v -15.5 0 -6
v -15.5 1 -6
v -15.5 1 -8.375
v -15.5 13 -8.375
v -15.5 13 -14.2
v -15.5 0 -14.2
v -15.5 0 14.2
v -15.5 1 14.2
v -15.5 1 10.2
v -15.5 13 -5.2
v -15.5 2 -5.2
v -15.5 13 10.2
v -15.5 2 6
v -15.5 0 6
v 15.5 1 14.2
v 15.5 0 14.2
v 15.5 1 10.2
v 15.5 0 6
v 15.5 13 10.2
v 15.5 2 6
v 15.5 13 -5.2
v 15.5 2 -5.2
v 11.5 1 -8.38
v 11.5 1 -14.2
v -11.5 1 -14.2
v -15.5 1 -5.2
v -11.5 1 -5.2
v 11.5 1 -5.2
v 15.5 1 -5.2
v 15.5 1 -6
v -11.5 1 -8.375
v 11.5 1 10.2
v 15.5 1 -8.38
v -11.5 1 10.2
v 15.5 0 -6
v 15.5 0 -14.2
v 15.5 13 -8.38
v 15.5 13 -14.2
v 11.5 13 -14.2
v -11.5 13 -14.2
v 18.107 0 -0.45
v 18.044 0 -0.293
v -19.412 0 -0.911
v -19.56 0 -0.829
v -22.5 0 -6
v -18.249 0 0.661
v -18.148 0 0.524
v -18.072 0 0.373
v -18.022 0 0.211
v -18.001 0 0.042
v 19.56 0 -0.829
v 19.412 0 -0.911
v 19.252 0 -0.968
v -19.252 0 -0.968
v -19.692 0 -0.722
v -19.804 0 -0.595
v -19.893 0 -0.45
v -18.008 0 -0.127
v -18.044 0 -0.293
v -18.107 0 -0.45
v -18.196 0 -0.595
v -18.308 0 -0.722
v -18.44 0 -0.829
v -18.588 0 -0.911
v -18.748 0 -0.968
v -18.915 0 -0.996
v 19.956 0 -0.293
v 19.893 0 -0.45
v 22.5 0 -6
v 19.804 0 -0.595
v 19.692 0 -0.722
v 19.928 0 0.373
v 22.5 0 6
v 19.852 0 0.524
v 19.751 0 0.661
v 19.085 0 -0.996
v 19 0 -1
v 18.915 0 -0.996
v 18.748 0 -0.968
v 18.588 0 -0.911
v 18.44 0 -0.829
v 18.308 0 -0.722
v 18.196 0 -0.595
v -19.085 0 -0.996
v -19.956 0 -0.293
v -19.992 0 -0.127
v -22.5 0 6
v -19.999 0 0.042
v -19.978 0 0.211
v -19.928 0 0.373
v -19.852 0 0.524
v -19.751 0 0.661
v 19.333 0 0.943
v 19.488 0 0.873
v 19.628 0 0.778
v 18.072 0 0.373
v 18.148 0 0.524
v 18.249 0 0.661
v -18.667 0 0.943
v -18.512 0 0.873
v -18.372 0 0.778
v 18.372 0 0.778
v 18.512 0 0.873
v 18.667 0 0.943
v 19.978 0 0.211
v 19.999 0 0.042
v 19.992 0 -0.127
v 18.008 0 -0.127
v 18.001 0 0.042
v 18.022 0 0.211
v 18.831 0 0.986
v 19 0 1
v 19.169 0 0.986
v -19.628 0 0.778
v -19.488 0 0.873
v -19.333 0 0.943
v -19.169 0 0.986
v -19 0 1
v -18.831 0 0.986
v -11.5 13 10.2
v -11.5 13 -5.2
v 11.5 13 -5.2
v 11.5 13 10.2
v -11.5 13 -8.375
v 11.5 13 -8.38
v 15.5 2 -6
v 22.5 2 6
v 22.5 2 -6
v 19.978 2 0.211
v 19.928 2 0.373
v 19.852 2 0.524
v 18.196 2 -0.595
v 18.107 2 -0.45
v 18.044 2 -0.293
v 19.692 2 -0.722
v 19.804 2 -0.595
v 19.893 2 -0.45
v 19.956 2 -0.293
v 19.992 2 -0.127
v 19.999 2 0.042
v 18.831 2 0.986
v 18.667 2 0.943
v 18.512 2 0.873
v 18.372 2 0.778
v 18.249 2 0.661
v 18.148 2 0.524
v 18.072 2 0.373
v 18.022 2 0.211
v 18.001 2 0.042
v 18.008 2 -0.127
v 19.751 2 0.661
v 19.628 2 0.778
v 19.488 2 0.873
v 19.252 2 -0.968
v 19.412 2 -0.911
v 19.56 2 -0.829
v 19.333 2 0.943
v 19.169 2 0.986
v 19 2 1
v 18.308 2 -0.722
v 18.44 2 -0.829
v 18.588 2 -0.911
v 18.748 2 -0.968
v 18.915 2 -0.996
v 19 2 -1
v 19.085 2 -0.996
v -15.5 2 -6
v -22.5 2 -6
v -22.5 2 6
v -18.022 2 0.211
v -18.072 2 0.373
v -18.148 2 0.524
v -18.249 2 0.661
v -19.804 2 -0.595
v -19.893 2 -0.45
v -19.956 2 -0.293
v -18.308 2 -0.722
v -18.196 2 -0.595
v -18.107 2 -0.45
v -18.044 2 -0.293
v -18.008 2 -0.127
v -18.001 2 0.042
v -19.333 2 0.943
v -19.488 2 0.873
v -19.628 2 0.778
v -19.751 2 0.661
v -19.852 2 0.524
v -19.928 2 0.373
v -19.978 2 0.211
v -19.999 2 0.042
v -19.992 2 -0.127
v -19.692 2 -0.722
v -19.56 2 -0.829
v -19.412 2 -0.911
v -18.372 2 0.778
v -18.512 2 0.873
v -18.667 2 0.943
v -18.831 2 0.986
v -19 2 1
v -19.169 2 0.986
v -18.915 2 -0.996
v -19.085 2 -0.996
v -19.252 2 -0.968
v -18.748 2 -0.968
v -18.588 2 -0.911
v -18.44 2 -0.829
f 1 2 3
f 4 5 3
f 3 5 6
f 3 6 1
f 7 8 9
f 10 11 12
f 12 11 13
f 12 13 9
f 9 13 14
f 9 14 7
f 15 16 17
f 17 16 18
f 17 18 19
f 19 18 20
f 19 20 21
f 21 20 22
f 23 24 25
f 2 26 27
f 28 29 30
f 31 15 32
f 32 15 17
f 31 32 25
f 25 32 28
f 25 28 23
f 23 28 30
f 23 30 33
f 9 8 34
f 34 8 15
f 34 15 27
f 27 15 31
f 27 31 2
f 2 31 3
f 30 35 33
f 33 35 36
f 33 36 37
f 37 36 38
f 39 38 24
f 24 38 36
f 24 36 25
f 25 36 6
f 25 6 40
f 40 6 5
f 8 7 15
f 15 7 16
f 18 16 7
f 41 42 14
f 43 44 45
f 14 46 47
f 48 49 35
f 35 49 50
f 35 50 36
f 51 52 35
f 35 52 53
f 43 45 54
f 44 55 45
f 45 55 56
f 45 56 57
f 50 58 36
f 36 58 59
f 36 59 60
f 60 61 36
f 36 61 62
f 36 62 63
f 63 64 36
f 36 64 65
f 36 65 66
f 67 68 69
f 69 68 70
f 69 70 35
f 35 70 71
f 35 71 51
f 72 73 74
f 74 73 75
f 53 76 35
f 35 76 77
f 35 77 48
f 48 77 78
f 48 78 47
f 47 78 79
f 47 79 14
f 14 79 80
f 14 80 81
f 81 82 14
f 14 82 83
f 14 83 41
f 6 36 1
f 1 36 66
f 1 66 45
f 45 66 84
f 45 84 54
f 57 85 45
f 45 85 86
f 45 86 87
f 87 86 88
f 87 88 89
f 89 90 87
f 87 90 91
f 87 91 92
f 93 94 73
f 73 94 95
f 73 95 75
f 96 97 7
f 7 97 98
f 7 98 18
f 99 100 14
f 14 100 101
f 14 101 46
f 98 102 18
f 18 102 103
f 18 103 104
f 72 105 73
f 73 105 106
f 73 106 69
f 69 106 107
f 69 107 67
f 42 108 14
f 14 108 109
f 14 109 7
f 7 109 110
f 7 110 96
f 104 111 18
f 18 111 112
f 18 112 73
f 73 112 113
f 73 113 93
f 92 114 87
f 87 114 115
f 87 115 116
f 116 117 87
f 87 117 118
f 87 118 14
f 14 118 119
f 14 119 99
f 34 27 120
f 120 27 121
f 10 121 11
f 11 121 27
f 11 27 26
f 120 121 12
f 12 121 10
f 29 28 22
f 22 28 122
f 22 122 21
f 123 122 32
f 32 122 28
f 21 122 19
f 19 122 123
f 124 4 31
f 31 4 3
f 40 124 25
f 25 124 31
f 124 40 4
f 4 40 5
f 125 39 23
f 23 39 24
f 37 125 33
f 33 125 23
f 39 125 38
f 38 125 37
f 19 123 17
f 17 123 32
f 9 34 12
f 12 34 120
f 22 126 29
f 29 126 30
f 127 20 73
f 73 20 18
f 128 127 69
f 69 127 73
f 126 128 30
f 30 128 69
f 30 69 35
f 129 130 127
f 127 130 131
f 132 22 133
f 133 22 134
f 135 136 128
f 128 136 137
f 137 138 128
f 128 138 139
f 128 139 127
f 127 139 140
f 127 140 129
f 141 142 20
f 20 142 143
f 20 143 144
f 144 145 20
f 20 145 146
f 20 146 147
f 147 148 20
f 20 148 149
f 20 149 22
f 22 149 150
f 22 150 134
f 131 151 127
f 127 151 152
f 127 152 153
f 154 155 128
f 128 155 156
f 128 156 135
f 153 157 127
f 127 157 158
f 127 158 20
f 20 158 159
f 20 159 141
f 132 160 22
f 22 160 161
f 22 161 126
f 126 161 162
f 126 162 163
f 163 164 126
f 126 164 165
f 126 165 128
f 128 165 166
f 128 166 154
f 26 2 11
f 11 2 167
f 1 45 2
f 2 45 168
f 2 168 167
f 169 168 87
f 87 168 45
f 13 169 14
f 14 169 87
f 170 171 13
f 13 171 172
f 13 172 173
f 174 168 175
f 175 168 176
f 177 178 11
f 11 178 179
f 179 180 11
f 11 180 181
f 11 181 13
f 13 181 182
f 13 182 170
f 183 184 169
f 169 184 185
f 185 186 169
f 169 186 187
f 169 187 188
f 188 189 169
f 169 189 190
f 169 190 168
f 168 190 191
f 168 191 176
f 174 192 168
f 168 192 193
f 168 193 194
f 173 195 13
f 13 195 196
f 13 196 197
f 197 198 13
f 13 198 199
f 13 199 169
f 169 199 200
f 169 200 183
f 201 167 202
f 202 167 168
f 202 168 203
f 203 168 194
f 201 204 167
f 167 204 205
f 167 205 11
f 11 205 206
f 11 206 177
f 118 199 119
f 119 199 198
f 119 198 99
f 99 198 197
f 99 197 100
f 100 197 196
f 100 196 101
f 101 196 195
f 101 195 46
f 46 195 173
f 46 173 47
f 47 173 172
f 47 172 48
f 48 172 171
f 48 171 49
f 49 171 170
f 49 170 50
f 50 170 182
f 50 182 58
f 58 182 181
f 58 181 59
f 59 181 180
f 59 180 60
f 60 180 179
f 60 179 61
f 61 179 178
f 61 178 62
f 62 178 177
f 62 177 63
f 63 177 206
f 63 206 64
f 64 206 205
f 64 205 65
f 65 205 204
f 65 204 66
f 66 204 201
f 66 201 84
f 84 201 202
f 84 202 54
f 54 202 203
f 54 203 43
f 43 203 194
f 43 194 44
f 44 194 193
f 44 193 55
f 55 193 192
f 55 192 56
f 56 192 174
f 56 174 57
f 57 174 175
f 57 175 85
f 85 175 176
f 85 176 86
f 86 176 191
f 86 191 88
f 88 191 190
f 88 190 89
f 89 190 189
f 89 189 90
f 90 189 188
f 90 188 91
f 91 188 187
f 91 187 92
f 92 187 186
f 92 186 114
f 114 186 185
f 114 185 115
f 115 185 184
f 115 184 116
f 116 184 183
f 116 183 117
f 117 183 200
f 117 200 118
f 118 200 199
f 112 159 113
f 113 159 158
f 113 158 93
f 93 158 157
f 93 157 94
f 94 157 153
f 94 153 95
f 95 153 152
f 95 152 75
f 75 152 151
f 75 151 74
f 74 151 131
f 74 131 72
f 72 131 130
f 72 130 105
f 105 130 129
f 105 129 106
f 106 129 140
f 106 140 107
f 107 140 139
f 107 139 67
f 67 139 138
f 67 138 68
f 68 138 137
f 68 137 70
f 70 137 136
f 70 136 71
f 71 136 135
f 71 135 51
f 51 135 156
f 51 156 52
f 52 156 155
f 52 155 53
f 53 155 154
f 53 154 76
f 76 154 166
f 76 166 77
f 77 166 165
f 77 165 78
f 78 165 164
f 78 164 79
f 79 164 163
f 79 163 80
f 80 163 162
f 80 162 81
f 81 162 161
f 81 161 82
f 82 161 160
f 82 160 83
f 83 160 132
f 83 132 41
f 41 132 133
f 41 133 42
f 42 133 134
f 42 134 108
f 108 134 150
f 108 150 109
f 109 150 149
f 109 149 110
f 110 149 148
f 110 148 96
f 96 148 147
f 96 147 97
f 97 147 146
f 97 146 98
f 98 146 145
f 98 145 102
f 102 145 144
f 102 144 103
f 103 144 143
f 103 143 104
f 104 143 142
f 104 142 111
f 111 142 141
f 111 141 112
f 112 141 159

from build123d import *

# Parameters (mm, degrees)
SKETCH1_W           = 31
SKETCH1_H           = 28.4
BOSS_EXTRUDE1_DEPTH = 1
SKETCH3_W           = 4
SKETCH3_H           = 19.4
SKETCH3_H_2         = 5.825
SKETCH3_H_3         = 5.82
BOSS_EXTRUDE2_DEPTH = 12
SKETCH4_W           = 31
SKETCH4_H           = 4
CUT_EXTRUDE1_DEPTH  = 12
SKETCH7_W           = 7
SKETCH7_H           = 12
BOSS_EXTRUDE3_DEPTH = 2
SKETCH8_R           = 1
CUT_EXTRUDE4_DEPTH  = 29.790449805


with BuildPart() as part:
    # Sketch1 → Boss-Extrude1 (new body)
    with BuildSketch(Plane(origin=(0, 0, 0), x_dir=(1, 0, 0), z_dir=(0, 1, 0))):
        Rectangle(SKETCH1_W, SKETCH1_H)
    extrude(amount=BOSS_EXTRUDE1_DEPTH)

    # Sketch3 → Boss-Extrude2 (add)
    with BuildSketch(Plane(origin=(0, 1, 0), x_dir=(1, 0, 0), z_dir=(0, 1, 0))):
        with Locations((-13.5, -4.5)):
            Rectangle(SKETCH3_W, SKETCH3_H)
        with Locations((13.5, -4.5)):
            Rectangle(SKETCH3_W, SKETCH3_H)
        with Locations((-13.5, 11.2875)):
            Rectangle(SKETCH3_W, SKETCH3_H_2)
        with Locations((13.5, 11.29)):
            Rectangle(SKETCH3_W, SKETCH3_H_3)
    extrude(amount=BOSS_EXTRUDE2_DEPTH)

    # Sketch4 → Cut-Extrude1 (cut)
    with BuildSketch(Plane(origin=(0, 13, 0), x_dir=(1, 0, 0), z_dir=(0, 1, 0))):
        with Locations((0, -12.2)):
            Rectangle(SKETCH4_W, SKETCH4_H)
    extrude(amount=-CUT_EXTRUDE1_DEPTH, mode=Mode.SUBTRACT)

    # Sketch7 → Boss-Extrude3 (add)
    with BuildSketch(Plane(origin=(0, 0, 0), x_dir=(1, 0, 0), z_dir=(0, 1, 0))):
        with Locations((19, 0)):
            Rectangle(SKETCH7_W, SKETCH7_H)
        with Locations((-19, 0)):
            Rectangle(SKETCH7_W, SKETCH7_H)
    extrude(amount=BOSS_EXTRUDE3_DEPTH)

    # Sketch8 → Cut-Extrude4 (cut, through all)
    with BuildSketch(Plane(origin=(0, 2, 0), x_dir=(1, 0, 0), z_dir=(0, 1, 0))):
        with Locations(Location((-19, 0, 0), (0, 0, 270))):
            Circle(SKETCH8_R)
        with Locations(Location((19, 0, 0), (0, 0, 90))):
            Circle(SKETCH8_R)
    extrude(amount=-CUT_EXTRUDE4_DEPTH, mode=Mode.SUBTRACT)


solid = part.part
